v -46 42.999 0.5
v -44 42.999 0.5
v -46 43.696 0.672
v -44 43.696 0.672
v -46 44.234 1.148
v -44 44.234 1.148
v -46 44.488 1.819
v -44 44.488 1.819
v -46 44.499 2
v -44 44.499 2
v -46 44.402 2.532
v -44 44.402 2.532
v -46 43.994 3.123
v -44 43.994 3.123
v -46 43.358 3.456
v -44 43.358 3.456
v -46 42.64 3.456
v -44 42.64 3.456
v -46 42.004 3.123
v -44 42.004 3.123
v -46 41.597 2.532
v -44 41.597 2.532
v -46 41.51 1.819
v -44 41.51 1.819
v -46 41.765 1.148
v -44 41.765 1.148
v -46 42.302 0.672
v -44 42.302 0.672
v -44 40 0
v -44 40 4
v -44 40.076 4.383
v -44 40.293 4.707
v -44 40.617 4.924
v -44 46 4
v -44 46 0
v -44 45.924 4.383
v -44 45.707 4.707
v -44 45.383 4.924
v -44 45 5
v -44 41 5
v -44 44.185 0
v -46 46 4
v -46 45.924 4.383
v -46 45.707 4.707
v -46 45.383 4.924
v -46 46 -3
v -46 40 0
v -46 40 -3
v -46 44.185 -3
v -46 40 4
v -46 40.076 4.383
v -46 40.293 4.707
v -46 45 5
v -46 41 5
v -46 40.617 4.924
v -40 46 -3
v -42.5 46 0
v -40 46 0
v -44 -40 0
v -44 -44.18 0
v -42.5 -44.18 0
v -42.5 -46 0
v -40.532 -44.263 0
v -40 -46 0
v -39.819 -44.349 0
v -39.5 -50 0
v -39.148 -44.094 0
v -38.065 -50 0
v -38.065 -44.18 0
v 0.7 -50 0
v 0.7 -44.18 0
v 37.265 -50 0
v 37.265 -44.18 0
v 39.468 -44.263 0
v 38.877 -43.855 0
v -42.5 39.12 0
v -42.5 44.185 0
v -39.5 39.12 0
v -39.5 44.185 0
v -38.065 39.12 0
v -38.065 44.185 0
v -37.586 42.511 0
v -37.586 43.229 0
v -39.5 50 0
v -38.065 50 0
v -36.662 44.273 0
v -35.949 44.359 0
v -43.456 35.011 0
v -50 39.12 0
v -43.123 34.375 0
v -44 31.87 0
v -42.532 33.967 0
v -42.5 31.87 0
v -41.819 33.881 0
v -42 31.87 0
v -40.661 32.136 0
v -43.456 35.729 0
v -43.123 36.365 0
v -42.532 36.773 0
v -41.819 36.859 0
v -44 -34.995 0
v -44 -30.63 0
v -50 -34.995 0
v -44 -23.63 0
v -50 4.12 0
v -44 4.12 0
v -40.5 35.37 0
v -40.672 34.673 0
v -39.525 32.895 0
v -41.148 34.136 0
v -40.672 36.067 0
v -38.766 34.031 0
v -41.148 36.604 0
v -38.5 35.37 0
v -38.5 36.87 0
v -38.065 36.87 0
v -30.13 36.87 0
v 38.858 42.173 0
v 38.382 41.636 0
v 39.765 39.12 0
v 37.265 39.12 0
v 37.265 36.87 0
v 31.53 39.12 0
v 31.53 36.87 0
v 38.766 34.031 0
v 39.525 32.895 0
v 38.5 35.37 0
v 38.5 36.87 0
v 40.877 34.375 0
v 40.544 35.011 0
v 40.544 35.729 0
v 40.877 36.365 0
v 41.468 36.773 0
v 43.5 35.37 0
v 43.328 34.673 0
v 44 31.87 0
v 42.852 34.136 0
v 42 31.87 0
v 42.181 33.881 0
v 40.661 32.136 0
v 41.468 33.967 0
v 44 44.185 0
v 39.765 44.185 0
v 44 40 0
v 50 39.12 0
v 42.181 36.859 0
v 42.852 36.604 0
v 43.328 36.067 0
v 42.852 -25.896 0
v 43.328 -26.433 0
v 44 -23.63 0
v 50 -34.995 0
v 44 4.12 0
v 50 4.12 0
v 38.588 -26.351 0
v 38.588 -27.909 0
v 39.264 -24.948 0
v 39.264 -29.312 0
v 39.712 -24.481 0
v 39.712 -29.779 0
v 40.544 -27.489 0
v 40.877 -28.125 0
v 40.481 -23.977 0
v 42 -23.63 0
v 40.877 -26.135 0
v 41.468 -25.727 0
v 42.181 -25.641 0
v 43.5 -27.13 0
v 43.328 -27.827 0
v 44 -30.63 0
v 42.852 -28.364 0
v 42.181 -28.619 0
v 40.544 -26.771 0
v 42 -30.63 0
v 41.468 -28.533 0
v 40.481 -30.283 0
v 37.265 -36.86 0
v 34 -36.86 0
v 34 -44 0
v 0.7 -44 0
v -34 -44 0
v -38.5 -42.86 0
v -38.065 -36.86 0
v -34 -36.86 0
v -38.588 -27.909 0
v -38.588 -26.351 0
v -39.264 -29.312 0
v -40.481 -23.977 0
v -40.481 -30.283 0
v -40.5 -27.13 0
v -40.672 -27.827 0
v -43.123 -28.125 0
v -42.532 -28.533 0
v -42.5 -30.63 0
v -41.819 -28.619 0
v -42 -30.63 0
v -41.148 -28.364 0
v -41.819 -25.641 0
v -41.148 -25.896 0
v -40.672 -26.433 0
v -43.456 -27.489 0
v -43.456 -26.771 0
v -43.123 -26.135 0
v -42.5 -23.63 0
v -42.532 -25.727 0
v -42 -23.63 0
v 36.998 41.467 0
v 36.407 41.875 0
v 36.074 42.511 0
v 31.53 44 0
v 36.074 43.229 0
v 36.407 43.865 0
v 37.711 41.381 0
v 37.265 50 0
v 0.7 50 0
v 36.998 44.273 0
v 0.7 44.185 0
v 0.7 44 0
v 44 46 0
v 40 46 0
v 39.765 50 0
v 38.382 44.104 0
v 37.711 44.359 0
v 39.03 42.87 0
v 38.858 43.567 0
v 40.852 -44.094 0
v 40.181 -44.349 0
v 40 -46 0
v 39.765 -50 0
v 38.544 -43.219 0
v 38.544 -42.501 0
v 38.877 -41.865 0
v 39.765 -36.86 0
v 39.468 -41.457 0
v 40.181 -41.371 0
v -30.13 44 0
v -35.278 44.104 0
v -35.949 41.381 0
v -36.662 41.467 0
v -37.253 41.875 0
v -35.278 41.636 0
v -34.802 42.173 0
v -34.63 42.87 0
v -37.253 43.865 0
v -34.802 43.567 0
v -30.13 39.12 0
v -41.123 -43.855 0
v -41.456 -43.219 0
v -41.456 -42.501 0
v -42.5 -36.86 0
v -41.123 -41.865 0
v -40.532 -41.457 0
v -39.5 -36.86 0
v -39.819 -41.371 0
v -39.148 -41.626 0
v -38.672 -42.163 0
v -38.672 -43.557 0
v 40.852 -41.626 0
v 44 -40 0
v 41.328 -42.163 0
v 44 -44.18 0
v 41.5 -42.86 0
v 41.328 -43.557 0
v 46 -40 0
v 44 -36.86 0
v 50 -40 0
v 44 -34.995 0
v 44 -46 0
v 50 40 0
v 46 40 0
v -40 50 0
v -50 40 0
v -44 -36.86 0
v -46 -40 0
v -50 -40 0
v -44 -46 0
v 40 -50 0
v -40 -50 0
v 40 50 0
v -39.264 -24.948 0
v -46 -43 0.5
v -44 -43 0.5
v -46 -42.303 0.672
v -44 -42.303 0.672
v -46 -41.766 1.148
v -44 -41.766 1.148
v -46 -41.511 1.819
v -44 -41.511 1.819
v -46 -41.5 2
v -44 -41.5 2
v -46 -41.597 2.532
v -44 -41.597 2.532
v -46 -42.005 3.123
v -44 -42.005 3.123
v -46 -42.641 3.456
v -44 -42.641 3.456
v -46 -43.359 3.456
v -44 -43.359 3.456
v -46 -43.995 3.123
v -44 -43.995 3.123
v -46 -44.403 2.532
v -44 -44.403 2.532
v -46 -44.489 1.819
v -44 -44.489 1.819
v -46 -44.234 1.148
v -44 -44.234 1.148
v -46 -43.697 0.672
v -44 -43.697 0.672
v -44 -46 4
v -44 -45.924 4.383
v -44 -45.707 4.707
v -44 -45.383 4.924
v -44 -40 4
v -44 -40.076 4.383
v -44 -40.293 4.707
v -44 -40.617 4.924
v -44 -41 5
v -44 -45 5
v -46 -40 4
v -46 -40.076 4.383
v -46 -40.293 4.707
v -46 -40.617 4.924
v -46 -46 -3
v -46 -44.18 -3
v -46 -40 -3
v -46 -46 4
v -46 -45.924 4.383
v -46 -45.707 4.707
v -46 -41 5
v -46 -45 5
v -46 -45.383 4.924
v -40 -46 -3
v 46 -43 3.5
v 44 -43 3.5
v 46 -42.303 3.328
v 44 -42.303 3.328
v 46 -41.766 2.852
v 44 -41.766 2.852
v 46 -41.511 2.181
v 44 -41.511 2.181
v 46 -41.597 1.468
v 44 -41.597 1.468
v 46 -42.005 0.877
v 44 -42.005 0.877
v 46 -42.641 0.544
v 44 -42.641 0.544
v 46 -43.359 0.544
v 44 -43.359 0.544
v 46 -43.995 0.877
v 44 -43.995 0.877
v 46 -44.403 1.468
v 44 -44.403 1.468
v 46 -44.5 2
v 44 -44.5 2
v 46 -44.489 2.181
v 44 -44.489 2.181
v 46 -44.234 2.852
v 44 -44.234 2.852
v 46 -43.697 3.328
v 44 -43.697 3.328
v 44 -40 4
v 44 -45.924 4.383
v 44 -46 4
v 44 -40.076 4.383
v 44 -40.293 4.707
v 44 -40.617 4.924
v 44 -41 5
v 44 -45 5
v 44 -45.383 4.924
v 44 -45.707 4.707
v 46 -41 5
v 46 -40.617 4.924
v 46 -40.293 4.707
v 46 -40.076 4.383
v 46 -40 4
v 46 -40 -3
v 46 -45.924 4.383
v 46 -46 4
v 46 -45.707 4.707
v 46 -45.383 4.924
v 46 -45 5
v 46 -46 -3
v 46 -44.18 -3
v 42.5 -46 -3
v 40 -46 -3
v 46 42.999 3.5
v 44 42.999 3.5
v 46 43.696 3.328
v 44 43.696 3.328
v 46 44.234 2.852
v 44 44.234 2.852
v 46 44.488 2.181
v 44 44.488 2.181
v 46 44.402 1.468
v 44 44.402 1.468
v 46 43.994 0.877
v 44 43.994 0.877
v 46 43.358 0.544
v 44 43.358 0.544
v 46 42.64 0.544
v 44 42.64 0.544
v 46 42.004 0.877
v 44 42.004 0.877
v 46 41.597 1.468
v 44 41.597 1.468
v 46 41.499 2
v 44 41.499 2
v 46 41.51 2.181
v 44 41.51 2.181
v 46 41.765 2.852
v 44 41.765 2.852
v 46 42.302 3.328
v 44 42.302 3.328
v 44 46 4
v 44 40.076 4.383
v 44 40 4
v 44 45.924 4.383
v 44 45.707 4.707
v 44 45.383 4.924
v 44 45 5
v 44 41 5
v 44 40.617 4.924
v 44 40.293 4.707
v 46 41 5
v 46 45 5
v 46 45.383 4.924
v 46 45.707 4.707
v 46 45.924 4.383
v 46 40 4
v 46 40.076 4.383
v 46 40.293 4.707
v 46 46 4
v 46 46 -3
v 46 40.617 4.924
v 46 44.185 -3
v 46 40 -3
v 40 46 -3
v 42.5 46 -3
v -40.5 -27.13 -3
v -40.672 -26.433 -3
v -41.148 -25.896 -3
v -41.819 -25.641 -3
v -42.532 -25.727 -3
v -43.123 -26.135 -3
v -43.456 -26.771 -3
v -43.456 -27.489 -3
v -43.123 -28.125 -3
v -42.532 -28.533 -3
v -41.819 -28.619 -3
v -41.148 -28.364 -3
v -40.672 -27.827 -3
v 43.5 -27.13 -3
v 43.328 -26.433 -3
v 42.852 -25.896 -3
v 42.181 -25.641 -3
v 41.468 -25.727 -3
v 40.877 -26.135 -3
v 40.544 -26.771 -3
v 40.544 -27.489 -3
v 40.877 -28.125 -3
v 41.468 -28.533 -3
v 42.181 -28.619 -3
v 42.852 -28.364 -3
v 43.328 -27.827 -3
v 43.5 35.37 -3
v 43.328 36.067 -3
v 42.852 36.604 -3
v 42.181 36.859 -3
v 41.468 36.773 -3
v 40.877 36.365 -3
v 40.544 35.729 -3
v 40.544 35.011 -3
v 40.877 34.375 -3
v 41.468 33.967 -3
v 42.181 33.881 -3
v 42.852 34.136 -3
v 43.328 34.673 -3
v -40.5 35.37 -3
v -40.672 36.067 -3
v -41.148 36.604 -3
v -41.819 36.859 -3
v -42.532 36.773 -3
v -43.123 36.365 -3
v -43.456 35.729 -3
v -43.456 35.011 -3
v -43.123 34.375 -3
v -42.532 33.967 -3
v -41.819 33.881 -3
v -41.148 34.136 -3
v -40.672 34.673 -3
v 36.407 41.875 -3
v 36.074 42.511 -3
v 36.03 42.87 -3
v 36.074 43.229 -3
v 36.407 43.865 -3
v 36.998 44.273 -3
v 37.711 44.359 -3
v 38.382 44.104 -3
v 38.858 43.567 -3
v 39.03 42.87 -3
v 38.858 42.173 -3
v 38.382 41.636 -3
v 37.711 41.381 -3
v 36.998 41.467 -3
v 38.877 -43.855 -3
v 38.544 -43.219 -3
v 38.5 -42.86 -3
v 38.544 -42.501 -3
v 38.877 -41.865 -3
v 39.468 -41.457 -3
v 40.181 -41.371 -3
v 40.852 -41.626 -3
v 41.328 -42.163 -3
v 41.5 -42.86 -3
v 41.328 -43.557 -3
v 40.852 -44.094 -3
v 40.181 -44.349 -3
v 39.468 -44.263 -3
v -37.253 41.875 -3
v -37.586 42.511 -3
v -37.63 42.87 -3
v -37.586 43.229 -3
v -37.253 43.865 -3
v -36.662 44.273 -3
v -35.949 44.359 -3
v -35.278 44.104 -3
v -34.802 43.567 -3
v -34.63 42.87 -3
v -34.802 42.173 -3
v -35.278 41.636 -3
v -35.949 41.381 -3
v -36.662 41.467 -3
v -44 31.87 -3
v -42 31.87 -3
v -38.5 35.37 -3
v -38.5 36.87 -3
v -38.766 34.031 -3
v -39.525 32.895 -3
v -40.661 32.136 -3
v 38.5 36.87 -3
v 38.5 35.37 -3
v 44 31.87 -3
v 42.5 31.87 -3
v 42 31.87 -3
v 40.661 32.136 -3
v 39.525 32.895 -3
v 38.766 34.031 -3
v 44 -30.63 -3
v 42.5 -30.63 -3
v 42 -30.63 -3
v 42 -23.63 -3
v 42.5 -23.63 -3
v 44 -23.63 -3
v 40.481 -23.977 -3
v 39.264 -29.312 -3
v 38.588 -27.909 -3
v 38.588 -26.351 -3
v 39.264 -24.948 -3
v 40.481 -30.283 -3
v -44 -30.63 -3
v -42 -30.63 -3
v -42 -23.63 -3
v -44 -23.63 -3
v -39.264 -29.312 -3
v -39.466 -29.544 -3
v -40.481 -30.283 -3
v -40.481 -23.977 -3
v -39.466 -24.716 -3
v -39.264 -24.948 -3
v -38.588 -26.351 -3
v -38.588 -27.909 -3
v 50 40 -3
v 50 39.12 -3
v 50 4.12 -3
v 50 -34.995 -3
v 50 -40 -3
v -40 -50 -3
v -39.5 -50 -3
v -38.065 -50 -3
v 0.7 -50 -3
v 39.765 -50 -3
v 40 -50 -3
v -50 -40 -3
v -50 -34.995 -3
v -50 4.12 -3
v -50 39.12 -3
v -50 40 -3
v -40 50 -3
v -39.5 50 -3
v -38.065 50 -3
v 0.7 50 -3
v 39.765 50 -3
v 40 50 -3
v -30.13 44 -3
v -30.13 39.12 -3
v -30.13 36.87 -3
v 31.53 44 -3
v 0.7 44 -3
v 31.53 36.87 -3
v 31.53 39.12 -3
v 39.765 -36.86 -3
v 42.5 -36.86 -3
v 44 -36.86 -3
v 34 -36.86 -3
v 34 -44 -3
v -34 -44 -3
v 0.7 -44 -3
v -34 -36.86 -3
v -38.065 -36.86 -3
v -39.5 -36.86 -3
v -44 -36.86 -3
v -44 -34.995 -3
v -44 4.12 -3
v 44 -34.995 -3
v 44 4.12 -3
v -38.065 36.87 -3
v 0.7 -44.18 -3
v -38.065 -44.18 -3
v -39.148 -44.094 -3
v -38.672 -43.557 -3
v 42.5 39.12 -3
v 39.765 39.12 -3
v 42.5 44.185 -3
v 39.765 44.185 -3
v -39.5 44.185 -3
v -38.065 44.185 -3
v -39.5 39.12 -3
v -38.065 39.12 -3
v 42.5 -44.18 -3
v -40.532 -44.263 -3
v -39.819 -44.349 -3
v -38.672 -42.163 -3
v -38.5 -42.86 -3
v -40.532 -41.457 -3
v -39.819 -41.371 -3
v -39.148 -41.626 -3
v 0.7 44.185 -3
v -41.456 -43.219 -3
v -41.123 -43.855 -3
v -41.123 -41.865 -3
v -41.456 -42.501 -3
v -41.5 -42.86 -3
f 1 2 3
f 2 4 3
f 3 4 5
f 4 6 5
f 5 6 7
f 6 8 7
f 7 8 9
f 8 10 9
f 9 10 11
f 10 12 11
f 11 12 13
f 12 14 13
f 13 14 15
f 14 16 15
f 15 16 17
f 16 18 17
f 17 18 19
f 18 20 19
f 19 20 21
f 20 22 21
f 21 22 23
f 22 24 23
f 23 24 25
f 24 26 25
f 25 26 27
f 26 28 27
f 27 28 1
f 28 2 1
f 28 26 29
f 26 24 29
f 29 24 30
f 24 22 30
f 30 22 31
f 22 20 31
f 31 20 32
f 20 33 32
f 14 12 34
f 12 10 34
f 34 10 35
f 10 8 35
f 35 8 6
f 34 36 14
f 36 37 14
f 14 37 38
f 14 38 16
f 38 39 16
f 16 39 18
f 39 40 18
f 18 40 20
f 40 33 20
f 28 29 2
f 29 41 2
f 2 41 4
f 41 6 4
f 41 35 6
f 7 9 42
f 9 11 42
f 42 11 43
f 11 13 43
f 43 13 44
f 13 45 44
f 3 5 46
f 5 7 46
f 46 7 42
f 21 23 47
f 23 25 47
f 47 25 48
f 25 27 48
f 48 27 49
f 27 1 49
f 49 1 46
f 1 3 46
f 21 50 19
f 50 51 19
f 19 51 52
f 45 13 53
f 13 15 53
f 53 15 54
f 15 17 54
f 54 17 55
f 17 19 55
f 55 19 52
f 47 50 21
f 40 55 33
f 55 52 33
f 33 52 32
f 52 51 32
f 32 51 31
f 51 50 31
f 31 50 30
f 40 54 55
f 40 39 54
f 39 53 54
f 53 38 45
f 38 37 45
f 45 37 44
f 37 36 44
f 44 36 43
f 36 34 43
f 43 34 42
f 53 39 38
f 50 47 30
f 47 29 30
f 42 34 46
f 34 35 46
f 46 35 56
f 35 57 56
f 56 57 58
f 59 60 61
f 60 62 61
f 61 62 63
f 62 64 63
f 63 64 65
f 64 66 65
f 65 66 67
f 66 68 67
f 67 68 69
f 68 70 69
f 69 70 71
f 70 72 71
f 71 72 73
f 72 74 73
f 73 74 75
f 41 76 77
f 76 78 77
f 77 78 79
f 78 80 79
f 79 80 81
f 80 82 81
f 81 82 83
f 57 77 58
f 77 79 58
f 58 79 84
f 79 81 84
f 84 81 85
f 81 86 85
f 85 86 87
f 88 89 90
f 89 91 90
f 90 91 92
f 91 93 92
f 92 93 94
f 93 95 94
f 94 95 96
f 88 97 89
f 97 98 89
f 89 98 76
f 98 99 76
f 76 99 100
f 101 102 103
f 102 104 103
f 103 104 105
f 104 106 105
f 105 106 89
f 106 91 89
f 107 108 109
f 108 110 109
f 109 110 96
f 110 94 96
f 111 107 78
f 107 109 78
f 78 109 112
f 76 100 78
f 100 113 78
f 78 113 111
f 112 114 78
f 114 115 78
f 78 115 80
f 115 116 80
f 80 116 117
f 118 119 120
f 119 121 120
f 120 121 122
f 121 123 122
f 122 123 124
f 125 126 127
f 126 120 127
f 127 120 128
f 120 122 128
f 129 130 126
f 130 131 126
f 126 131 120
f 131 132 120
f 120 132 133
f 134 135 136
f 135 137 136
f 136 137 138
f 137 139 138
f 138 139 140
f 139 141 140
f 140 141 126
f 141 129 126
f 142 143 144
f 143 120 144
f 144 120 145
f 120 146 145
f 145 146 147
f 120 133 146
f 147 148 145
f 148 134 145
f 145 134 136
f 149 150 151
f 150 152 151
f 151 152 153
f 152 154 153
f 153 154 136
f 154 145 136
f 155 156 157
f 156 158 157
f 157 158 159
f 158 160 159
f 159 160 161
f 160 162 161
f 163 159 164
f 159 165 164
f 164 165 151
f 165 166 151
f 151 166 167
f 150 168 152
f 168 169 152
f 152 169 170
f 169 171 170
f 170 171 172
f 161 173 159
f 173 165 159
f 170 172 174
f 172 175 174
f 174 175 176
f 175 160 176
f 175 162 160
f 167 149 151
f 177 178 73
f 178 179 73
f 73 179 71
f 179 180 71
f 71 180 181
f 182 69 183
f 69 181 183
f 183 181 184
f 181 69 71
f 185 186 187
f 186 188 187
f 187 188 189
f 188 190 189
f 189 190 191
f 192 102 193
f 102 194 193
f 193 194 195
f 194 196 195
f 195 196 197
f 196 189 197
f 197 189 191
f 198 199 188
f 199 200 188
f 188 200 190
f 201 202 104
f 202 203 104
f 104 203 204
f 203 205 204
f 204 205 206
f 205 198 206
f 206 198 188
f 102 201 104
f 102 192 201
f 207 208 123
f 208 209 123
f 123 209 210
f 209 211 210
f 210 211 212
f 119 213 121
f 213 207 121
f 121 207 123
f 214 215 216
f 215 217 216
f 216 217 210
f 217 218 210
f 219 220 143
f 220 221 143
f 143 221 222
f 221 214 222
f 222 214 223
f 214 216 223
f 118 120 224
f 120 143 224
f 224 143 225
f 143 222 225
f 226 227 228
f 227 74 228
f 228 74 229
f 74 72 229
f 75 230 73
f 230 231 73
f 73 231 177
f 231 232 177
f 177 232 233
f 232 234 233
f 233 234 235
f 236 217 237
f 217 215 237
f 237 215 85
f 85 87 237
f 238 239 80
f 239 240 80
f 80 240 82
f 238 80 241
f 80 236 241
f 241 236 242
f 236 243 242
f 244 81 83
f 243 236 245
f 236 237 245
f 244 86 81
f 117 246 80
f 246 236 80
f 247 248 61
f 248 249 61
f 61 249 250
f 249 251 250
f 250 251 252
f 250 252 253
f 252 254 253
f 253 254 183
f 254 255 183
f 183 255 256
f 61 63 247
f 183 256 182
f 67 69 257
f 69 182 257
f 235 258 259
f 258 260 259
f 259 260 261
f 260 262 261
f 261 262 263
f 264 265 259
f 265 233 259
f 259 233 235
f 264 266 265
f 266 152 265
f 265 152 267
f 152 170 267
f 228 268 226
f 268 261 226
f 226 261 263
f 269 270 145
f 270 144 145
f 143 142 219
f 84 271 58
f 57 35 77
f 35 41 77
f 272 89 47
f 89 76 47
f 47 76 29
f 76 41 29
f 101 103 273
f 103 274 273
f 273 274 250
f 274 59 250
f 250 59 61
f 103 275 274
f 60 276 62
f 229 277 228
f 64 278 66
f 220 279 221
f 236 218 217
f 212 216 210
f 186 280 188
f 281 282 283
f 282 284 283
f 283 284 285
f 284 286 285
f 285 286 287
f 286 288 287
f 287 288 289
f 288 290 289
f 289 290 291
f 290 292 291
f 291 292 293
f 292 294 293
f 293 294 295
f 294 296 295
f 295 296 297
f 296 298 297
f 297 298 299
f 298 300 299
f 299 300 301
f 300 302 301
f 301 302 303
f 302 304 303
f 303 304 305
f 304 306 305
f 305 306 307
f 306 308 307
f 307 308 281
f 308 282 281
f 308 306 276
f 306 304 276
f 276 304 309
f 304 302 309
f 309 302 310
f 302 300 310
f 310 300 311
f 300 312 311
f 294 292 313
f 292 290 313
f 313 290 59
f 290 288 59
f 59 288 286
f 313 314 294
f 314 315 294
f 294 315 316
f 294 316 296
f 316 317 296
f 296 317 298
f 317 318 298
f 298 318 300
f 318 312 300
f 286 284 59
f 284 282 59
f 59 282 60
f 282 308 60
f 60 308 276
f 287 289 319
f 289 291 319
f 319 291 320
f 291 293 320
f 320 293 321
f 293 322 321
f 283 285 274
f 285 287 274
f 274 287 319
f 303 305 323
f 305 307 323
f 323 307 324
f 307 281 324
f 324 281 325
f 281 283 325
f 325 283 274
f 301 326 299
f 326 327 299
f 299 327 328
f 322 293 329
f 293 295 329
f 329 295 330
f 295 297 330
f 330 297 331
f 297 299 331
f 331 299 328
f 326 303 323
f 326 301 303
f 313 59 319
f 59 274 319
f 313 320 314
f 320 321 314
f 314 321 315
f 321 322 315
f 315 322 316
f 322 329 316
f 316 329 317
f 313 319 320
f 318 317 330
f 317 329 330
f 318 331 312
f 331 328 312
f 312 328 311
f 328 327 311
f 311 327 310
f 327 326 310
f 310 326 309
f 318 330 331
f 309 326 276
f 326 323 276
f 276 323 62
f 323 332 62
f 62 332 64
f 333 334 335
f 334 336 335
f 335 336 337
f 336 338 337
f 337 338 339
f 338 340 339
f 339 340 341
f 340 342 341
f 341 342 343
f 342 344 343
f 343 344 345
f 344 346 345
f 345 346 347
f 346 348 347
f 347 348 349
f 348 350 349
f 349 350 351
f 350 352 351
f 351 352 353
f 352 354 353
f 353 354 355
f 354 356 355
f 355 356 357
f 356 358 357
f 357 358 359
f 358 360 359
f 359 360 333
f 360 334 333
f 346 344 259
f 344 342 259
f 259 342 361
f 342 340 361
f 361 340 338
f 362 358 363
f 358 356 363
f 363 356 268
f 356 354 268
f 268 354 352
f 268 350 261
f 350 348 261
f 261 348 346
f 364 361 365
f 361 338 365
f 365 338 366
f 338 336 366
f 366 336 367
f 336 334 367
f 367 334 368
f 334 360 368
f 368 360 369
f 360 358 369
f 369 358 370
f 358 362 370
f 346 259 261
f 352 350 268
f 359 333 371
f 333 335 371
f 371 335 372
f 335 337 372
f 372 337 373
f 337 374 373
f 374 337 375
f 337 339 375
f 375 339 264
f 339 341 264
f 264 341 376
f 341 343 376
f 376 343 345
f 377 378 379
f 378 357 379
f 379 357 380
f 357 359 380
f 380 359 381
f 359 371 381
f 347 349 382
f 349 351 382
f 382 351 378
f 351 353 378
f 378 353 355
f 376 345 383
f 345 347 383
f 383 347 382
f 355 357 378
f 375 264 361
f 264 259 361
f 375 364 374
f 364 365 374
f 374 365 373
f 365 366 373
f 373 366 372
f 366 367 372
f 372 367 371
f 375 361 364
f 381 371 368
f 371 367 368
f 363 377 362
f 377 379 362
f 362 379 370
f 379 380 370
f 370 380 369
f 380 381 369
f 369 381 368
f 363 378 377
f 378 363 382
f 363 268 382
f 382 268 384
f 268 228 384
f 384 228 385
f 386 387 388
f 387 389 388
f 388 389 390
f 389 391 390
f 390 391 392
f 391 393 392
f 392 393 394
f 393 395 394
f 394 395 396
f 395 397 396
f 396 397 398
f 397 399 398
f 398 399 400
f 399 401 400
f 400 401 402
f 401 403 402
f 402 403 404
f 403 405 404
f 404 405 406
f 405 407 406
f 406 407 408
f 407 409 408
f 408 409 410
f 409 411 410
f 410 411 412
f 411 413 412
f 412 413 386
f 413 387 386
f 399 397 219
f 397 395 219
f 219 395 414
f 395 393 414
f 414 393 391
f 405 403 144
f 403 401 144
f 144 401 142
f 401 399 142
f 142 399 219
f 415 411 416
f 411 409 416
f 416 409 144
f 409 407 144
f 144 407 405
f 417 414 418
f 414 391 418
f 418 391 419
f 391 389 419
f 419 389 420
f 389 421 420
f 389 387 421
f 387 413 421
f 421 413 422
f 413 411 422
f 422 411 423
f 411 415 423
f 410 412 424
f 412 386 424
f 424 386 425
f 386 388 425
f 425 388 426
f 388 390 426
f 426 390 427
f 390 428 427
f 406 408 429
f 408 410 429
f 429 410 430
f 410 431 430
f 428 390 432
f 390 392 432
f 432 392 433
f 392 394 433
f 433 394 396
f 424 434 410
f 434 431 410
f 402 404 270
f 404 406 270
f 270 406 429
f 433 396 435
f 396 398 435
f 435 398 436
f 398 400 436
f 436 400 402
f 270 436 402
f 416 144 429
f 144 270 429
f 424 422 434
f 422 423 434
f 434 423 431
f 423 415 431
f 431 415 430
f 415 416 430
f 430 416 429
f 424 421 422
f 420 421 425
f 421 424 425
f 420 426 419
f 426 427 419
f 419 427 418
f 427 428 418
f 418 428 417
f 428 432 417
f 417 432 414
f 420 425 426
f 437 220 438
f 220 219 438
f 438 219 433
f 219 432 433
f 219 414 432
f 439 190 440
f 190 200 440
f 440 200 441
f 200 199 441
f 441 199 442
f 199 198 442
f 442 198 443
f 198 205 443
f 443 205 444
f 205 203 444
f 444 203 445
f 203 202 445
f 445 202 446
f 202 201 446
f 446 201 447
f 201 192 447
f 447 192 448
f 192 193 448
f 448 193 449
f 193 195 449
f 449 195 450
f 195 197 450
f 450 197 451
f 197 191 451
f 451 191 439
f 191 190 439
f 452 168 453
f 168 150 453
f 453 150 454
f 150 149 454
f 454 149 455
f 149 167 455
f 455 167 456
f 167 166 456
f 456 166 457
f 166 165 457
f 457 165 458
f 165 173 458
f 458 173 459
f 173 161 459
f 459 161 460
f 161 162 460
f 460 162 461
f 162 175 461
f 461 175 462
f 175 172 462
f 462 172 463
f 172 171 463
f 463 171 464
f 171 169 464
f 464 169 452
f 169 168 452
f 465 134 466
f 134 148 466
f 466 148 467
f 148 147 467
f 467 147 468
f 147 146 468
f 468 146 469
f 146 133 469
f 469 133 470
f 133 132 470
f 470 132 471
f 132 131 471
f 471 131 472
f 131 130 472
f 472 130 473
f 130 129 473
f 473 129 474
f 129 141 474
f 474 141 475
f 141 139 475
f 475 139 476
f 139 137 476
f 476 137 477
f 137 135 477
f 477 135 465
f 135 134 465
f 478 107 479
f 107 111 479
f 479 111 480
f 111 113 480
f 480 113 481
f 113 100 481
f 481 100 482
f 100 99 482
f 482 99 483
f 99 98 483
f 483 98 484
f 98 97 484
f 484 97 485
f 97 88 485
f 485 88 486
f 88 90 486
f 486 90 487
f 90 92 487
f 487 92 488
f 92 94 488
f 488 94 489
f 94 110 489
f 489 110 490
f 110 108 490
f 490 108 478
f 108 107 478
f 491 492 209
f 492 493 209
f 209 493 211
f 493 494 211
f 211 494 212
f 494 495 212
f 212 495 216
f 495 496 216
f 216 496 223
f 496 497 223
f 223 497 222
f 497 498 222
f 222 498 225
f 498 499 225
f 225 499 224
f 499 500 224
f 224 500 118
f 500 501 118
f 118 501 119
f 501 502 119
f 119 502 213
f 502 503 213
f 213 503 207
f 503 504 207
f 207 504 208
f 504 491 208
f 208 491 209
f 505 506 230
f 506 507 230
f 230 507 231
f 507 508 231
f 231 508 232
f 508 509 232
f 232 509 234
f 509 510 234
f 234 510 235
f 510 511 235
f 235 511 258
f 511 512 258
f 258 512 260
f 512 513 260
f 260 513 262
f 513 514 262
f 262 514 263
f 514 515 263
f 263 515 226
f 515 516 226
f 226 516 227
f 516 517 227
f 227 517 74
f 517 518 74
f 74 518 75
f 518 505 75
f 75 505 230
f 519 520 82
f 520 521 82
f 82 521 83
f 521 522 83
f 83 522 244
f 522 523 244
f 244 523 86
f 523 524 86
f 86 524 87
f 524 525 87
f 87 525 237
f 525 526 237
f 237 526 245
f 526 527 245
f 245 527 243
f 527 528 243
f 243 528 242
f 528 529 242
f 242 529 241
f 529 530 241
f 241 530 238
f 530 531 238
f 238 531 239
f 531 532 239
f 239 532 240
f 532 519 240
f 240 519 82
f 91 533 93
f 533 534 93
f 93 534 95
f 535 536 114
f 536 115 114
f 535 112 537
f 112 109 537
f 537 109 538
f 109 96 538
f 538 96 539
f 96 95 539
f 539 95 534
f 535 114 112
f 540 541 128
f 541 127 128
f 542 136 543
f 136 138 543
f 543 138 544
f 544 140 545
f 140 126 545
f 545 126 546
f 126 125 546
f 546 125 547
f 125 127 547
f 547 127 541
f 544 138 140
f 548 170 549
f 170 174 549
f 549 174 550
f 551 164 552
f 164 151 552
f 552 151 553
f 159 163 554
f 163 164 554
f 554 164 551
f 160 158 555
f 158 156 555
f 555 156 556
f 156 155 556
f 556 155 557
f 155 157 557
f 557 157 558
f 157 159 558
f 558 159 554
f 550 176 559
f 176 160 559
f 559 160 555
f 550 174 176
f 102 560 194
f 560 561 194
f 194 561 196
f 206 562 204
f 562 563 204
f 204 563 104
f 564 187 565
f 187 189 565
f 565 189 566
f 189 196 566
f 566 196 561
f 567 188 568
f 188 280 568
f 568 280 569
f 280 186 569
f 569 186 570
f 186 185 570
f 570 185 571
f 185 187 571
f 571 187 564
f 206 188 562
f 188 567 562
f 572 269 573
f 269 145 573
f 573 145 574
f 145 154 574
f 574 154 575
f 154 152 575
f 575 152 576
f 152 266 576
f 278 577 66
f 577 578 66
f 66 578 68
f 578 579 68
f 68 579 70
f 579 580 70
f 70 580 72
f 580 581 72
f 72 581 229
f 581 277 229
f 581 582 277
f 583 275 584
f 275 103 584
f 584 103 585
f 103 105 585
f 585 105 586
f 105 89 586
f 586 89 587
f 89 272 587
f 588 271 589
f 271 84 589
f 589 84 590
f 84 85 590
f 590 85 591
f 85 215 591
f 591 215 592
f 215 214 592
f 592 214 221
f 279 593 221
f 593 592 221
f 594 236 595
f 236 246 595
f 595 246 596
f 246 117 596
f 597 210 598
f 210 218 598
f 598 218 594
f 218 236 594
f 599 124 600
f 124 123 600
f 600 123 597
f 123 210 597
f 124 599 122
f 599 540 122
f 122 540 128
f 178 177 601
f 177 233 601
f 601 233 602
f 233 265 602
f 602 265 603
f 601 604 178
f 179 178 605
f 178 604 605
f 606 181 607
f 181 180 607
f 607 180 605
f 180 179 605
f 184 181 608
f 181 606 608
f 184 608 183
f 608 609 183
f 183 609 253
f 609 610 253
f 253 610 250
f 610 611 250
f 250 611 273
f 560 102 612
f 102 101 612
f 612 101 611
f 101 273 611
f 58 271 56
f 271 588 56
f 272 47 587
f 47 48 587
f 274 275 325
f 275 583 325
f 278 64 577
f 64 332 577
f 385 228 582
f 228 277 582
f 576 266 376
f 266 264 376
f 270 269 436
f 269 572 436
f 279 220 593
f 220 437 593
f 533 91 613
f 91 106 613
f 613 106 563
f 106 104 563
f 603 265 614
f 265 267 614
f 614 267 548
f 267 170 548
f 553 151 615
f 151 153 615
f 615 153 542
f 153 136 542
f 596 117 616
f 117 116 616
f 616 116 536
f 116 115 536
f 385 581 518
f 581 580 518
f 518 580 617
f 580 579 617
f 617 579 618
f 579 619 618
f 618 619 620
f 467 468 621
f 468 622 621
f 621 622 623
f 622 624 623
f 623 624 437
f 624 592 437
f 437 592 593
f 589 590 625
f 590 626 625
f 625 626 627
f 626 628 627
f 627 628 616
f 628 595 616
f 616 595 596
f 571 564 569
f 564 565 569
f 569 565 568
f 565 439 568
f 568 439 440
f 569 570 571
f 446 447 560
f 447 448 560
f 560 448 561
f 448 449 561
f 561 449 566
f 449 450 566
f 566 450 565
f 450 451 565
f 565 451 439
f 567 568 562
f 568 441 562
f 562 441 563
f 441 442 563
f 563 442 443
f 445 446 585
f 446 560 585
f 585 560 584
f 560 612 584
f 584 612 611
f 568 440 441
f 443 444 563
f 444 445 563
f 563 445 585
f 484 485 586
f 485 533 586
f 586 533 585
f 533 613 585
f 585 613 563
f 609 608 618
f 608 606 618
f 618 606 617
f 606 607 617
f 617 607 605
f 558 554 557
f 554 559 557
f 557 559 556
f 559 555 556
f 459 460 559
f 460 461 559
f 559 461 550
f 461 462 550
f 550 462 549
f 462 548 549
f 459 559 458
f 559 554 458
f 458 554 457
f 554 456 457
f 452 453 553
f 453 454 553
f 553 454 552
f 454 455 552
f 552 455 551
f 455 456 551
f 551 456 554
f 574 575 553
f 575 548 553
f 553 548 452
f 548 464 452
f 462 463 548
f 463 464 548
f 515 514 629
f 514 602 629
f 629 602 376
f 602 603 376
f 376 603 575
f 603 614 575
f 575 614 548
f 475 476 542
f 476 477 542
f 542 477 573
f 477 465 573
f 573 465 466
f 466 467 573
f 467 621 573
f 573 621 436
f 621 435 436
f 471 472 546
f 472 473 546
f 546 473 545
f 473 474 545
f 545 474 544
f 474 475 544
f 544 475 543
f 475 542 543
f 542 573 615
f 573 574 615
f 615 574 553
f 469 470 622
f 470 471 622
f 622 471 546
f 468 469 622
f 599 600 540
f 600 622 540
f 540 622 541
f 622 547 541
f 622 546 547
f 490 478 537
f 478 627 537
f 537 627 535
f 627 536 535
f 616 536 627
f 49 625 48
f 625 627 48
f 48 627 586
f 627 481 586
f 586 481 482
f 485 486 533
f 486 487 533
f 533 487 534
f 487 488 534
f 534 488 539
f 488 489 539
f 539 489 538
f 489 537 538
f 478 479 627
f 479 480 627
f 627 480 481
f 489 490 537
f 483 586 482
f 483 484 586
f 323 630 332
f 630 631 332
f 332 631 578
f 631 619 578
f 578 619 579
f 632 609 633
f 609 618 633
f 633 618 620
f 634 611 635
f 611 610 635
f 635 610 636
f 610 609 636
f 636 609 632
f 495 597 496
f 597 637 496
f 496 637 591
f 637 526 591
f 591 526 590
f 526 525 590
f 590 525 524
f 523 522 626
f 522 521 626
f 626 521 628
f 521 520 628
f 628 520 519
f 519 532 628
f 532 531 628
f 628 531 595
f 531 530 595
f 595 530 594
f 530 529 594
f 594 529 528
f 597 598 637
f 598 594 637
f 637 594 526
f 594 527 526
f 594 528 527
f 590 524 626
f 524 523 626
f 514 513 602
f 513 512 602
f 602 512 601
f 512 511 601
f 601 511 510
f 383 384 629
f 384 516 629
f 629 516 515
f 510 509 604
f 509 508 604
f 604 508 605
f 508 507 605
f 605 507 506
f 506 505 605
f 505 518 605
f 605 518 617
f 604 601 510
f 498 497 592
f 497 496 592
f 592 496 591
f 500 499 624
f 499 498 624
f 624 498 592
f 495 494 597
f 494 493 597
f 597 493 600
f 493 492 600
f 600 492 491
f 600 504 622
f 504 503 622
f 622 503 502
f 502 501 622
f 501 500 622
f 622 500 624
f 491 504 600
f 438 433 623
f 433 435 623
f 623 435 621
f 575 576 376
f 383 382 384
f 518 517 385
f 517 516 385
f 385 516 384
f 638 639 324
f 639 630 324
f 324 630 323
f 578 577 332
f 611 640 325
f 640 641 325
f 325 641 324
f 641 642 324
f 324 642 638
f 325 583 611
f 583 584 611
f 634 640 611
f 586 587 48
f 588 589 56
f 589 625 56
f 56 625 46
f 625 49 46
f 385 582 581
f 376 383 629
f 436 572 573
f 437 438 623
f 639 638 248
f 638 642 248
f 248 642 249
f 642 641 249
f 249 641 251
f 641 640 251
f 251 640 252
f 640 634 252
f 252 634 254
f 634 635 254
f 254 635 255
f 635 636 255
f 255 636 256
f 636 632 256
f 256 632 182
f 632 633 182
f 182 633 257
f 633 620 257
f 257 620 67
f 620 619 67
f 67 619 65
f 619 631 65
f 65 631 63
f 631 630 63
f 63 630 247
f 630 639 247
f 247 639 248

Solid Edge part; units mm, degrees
sketch "Sketch1" plane through (0, 0, 0) normal (0, 0, 1) x (1, 0, 0)
  line L0 (-40, -50) -> (40, -50)
  line L1 (40, -50) -> (50, -50)
  line L2 (50, -50) -> (50, -40)
  line L3 (50, -40) -> (50, 40)
  line L4 (50, 50) -> (50, 40)
  line L5 (40, 50) -> (50, 50)
  line L6 (40, 50) -> (-40, 50)
  line L7 (-50, 50) -> (-40, 50)
  line L8 (-50, 40) -> (-50, 50)
  line L9 (-50, 40) -> (-50, -40)
  line L10 (-50, -40) -> (-50, -50)
  line L11 (-50, -50) -> (-40, -50)
extrude "Protrusion1" add sketch "Sketch1" against normal blind 5
sketch "Sketch2" plane through (0, 0, 0) normal (0, 0, 1) x (1, 0, 0)
  line L0 (50, 50) -> (40, 50)
  line L1 (40, 46) -> (40, 50)
  line L2 (40, 46) -> (46, 46)
  line L3 (46, 46) -> (46, 40)
  line L4 (46, 40) -> (50, 40)
  line L5 (50, 40) -> (50, 50)
  line L6 (50, -40) -> (50, -50)
  line L7 (50, -50) -> (40, -50)
  line L8 (40, -46) -> (40, -50)
  line L9 (46, -46) -> (40, -46)
  line L10 (46, -40) -> (46, -46)
  line L11 (46, -40) -> (50, -40)
  line L12 (-50, -50) -> (-40, -50)
  line L13 (-40, -46) -> (-40, -50)
  line L14 (-46, -46) -> (-40, -46)
  line L15 (-46, -40) -> (-46, -46)
  line L16 (-50, -40) -> (-46, -40)
  line L17 (-50, -40) -> (-50, -50)
  line L18 (-46, 40) -> (-46, 46)
  line L19 (-46, 46) -> (-40, 46)
  line L20 (-40, 46) -> (-40, 50)
  line L21 (-40, 50) -> (-50, 50)
  line L22 (-50, 50) -> (-50, 40)
  line L23 (-50, 40) -> (-46, 40)
  dimension "D1" = 40
  dimension "D2" = 40
  dimension "D3" = 50
  dimension "D4" = 50
  dimension "D5" = 50
  dimension "D6" = 50
  dimension "D7" = 40
  dimension "D8" = 46
  dimension "D9" = 46
  dimension "D10" = 50
  dimension "D11" = 50
  dimension "D12" = 40
  dimension "D13" = 50
  dimension "D14" = 50
  dimension "D15" = 50
  dimension "D16" = 40
extrude "ExtrudedCutout_1" cut sketch "Sketch2" against normal blind 11.3526
sketch "Sketch3" plane through (0, 0, 0) normal (0, 0, 1) x (1, 0, 0)
  circle A0 centre (-40, -42.86) radius 1.5
  circle A1 centre (-36.13, 42.87) radius 1.5
  circle A2 centre (40, -42.86) radius 1.5
  circle A3 centre (37.53, 42.87) radius 1.5
extrude "Cutout1" cut sketch "Sketch3" against normal blind 5
sketch "Sketch4" plane through (0, 0, 0) normal (0, 0, 1) x (0, 1, 0)
  line L0 (36.87, 44) -> (-36.86, 44)
  line L1 (-36.86, 44) -> (-36.86, 34)
  line L2 (-36.86, 34) -> (-44, 34)
  line L3 (-44, 34) -> (-44, -34)
  line L4 (-44, -34) -> (-36.86, -34)
  line L5 (-36.86, -34) -> (-36.86, -44)
  line L6 (-36.86, -44) -> (36.87, -44)
  line L7 (36.87, -44) -> (36.87, -31.53)
  line L8 (36.87, -31.53) -> (44, -31.53)
  line L9 (44, -31.53) -> (44, 30.13)
  line L10 (44, 30.13) -> (36.87, 30.13)
  line L11 (36.87, 30.13) -> (36.87, 44)
extrude "Cutout2" cut sketch "Sketch4" against normal blind 5
sketch "Sketch5" plane through (0, 0, 0) normal (0, 0, 1) x (1, 0, 0)
  line L0 (-46, 40) -> (-44, 40)
  line L1 (-44, 40) -> (-44, 46)
  line L2 (-44, 46) -> (-46, 46)
  line L3 (-46, 40) -> (-46, 46)
  line L4 (46, 46) -> (44, 46)
  line L5 (44, 46) -> (44, 40)
  line L6 (44, 40) -> (46, 40)
  line L7 (46, 40) -> (46, 46)
  line L8 (-46, -40) -> (-44, -40)
  line L9 (-44, -40) -> (-44, -46)
  line L10 (-44, -46) -> (-46, -46)
  line L11 (-46, -46) -> (-46, -40)
  line L12 (46, -46) -> (44, -46)
  line L13 (44, -46) -> (44, -40)
  line L14 (44, -40) -> (46, -40)
  line L15 (46, -40) -> (46, -46)
extrude "ExtrudedProtrusion_3" add sketch "Sketch5" along normal blind 5
sketch "Sketch6" plane through (-44, -43, 3) normal (1, 0, 0) x (0, 1, 0)
  circle A0 centre (0, -1) radius 1.5
  circle A1 centre (85.9991, -1) radius 1.5
extrude "ExtrudedCutout_14" cut sketch "Sketch6" against normal blind 2
sketch "Sketch7" plane through (44, 43, 2.5) normal (-1, 0, 0) x (0, -1, 0)
  circle A0 centre (0.0009, -0.5) radius 1.5
  circle A1 centre (86, -0.5) radius 1.5
extrude "ExtrudedCutout_15" cut sketch "Sketch7" against normal blind 2
fillet "Round_2" radius 1 8 edges at (45, 40, 5) (45, 46, 5) (-45, 40, 5) (-45, 46, 5) (-45, -46, 5) (-45, -40, 5) (45, -46, 5) (45, -40, 5)
sketch "Sketch8" plane through (0, 0, -5) normal (0, 0, -1) x (0, -1, 0)
  line L0 (-50, -50) -> (50, -50)
  line L1 (50, -50) -> (50, 50)
  line L2 (50, 50) -> (-50, 50)
  line L3 (-50, 50) -> (-50, -50)
  dimension "D1" = 50
  dimension "D2" = 50
extrude "ExtrudedCutout_16" cut sketch "Sketch8" against normal blind 2
sketch "Sketch9" plane through (0, 0, 0) normal (0, 0, 1) x (1, 0, 0)
  line L0 (-42, -23.63) -> (-44, -23.63)
  line L1 (-44, -23.63) -> (-44, -30.63)
  line L2 (-42, -30.63) -> (-44, -30.63)
  arc A0 (-42, -30.63) -> (-42, -23.63) centre (-42, -27.13) ccw
  line L3 (42, -23.63) -> (44, -23.63)
  line L4 (44, -30.63) -> (44, -23.63)
  line L5 (42, -30.63) -> (44, -30.63)
  arc A1 (42, -30.63) -> (42, -23.63) centre (42, -27.13) cw
  line L6 (42, 31.87) -> (44, 31.87)
  line L7 (44, 36.87) -> (44, 31.87)
  line L8 (38.5, 36.87) -> (44, 36.87)
  line L9 (38.5, 35.37) -> (38.5, 36.87)
  arc A2 (38.5, 35.37) -> (42, 31.87) centre (42, 35.37) ccw
  line L10 (-38.5, 35.37) -> (-38.5, 36.87)
  line L11 (-38.5, 36.87) -> (-44, 36.87)
  line L12 (-44, 36.87) -> (-44, 31.87)
  line L13 (-42, 31.87) -> (-44, 31.87)
  arc A3 (-42, 31.87) -> (-38.5, 35.37) centre (-42, 35.37) ccw
extrude "Protrusion2" add sketch "Sketch9" against normal blind 3
sketch "Sketch10" plane through (0, 0, 0) normal (0, 0, 1) x (1, 0, 0)
  circle A0 centre (-42, 35.37) radius 1.5
  circle A1 centre (42, 35.37) radius 1.5
  circle A2 centre (42, -27.13) radius 1.5
  circle A3 centre (-42, -27.13) radius 1.5
extrude "ExtrudedCutout_17" cut sketch "Sketch10" against normal blind 3
